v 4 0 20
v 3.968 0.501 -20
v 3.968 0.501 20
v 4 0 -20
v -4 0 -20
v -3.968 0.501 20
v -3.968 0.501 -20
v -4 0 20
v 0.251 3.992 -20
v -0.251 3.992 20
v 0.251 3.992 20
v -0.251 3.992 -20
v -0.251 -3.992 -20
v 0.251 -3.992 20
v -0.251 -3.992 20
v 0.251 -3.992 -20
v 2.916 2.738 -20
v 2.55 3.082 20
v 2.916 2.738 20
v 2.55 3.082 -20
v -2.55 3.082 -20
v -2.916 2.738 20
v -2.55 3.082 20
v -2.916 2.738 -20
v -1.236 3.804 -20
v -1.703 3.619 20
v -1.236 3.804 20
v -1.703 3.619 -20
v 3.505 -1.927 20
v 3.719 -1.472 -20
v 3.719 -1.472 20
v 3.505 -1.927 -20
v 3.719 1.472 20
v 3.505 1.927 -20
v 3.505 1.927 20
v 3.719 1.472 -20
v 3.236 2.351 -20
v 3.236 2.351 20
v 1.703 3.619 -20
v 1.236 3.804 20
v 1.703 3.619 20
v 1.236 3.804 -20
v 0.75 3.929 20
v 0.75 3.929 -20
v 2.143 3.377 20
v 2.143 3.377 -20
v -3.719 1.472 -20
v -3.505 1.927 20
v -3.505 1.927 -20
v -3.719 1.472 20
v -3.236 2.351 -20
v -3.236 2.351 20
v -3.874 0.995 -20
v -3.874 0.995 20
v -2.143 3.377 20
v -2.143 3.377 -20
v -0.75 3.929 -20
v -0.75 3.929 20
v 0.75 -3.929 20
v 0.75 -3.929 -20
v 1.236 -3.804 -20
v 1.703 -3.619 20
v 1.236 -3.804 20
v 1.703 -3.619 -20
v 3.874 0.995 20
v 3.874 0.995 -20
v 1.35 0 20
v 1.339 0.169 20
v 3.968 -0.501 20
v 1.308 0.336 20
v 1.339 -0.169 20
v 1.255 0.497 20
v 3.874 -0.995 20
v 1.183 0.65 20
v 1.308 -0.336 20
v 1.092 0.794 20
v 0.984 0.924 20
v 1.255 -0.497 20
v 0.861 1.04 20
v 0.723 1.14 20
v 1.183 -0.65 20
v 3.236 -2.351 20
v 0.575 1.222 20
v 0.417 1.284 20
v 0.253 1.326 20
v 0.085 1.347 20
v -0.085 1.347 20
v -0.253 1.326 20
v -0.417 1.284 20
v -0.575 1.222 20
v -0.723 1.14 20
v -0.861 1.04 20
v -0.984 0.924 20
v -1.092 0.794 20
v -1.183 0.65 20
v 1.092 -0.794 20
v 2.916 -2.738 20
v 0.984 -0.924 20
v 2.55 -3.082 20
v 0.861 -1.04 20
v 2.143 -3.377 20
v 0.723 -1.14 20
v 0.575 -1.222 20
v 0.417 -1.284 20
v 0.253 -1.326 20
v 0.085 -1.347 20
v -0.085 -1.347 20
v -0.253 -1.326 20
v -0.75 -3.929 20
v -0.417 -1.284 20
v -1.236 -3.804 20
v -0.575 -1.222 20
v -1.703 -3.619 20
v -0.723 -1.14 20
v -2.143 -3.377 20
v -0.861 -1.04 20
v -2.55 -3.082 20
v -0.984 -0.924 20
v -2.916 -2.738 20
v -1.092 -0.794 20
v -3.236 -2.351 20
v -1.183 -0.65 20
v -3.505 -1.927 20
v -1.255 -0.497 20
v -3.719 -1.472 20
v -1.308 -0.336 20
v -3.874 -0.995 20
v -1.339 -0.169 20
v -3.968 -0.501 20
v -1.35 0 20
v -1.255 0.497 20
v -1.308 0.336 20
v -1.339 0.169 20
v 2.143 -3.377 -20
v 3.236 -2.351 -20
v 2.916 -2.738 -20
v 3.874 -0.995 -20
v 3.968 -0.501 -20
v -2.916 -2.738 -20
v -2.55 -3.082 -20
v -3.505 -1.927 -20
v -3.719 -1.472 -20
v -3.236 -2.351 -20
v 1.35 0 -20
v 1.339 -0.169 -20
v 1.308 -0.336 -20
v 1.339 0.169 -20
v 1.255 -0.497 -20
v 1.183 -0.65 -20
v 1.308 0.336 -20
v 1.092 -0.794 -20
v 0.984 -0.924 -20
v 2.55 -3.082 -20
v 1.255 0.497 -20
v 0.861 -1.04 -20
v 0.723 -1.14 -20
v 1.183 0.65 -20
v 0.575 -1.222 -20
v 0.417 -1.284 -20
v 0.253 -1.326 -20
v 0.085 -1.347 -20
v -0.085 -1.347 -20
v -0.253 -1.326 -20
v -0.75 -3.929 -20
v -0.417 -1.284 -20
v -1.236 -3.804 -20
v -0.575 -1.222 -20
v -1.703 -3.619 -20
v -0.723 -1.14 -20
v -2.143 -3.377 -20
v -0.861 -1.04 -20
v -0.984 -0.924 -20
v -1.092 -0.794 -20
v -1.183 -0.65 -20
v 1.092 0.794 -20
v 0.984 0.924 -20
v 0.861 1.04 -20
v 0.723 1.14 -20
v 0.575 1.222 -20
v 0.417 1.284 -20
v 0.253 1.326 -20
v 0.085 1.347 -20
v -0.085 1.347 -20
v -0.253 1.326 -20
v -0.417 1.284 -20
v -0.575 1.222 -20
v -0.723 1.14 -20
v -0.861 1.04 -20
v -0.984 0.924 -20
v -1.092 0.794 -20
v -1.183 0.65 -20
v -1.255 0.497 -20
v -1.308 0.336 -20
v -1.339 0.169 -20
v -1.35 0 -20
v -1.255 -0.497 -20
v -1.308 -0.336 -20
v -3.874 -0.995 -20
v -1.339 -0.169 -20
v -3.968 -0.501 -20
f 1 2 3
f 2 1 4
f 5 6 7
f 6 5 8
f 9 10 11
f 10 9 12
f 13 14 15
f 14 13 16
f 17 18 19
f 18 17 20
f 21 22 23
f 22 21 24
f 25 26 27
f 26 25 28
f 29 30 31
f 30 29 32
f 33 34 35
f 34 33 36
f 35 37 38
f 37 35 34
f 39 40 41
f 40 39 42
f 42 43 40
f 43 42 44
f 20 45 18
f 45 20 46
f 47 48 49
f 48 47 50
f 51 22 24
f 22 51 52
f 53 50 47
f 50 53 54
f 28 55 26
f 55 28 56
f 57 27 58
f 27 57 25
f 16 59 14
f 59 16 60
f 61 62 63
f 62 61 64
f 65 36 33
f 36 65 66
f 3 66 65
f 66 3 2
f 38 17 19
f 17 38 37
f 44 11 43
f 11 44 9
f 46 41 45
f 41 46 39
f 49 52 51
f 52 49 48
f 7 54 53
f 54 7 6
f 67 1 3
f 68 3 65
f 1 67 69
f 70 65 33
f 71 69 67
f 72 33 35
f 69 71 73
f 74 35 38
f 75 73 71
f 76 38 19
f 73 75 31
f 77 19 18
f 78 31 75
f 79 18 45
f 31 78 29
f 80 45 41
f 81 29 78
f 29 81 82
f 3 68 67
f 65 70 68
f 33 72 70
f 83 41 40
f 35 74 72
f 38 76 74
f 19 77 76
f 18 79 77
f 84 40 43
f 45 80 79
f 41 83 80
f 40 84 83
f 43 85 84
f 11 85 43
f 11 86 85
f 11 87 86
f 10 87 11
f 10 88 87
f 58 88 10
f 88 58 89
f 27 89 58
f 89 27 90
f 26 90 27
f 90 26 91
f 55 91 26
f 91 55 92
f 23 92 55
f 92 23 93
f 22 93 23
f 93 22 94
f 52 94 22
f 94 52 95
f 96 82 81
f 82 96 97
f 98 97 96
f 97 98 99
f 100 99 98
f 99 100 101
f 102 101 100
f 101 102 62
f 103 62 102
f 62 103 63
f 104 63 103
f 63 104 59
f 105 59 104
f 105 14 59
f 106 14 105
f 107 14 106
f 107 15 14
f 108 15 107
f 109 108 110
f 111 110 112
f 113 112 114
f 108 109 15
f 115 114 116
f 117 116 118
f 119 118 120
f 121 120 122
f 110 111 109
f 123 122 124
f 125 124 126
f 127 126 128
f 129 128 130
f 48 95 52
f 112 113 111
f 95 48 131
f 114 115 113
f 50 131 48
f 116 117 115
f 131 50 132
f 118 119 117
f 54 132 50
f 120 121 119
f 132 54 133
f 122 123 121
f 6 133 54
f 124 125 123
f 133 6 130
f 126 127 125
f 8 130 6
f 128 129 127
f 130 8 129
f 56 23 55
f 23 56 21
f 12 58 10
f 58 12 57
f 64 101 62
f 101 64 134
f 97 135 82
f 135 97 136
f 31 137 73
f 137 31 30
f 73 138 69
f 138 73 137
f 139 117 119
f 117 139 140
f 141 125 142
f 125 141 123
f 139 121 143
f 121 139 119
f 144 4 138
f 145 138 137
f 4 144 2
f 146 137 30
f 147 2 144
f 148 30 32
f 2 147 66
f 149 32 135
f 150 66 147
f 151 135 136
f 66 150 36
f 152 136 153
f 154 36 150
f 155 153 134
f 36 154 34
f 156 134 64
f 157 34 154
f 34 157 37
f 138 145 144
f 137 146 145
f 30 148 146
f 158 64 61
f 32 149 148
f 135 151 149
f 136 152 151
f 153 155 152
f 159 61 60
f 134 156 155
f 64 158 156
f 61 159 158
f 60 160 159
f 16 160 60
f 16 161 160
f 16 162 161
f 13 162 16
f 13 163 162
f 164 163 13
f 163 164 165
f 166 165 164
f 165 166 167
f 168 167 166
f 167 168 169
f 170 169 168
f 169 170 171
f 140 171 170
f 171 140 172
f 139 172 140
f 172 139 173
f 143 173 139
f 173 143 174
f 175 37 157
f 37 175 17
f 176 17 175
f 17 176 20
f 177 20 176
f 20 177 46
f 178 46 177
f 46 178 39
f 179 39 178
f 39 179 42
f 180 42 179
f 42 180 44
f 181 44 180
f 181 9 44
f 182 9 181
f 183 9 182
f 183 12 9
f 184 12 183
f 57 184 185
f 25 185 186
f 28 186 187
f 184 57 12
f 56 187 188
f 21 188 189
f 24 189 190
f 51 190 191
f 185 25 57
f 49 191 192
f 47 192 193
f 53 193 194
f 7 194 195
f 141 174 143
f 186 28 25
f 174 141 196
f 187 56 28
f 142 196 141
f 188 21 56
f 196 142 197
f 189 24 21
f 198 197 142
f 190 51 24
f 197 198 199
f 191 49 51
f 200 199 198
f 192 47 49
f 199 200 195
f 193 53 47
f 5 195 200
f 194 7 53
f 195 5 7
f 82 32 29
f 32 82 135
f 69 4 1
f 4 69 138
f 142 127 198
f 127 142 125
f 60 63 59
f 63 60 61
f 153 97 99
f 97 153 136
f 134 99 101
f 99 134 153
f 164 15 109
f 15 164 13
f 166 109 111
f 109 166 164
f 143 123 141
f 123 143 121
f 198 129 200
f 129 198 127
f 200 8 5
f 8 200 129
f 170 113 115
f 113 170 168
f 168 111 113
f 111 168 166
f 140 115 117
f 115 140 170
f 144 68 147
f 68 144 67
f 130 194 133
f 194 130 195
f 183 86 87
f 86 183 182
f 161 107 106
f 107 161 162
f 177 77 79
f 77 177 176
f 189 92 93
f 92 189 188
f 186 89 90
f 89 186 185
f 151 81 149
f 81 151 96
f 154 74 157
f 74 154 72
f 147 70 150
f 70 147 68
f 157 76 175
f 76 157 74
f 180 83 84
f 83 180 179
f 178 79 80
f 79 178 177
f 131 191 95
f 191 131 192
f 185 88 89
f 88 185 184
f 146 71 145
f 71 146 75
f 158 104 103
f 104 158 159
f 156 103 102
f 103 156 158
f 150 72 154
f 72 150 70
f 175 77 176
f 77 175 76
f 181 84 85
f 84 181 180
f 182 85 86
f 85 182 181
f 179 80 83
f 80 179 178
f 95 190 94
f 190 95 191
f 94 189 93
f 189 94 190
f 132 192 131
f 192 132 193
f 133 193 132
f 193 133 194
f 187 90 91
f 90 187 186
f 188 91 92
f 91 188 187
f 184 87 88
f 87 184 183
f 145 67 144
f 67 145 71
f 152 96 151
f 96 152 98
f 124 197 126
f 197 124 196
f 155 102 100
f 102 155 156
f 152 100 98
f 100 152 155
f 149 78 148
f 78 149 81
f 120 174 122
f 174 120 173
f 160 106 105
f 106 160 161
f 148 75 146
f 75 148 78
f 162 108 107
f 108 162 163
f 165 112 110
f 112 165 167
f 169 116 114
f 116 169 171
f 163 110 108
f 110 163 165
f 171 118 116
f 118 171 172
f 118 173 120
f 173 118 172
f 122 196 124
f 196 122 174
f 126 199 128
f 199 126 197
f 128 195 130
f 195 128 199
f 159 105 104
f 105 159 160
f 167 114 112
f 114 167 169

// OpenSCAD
$fn = 50;


difference() {
	union() {
		translate(v = [0, 0, -20.0000000000]) {
			cylinder(h = 40, r = 4.0000000000);
		}
	}
	union() {
		translate(v = [0, 0, -100.0000000000]) {
			cylinder(h = 200, r = 1.3500000000);
		}
	}
}
